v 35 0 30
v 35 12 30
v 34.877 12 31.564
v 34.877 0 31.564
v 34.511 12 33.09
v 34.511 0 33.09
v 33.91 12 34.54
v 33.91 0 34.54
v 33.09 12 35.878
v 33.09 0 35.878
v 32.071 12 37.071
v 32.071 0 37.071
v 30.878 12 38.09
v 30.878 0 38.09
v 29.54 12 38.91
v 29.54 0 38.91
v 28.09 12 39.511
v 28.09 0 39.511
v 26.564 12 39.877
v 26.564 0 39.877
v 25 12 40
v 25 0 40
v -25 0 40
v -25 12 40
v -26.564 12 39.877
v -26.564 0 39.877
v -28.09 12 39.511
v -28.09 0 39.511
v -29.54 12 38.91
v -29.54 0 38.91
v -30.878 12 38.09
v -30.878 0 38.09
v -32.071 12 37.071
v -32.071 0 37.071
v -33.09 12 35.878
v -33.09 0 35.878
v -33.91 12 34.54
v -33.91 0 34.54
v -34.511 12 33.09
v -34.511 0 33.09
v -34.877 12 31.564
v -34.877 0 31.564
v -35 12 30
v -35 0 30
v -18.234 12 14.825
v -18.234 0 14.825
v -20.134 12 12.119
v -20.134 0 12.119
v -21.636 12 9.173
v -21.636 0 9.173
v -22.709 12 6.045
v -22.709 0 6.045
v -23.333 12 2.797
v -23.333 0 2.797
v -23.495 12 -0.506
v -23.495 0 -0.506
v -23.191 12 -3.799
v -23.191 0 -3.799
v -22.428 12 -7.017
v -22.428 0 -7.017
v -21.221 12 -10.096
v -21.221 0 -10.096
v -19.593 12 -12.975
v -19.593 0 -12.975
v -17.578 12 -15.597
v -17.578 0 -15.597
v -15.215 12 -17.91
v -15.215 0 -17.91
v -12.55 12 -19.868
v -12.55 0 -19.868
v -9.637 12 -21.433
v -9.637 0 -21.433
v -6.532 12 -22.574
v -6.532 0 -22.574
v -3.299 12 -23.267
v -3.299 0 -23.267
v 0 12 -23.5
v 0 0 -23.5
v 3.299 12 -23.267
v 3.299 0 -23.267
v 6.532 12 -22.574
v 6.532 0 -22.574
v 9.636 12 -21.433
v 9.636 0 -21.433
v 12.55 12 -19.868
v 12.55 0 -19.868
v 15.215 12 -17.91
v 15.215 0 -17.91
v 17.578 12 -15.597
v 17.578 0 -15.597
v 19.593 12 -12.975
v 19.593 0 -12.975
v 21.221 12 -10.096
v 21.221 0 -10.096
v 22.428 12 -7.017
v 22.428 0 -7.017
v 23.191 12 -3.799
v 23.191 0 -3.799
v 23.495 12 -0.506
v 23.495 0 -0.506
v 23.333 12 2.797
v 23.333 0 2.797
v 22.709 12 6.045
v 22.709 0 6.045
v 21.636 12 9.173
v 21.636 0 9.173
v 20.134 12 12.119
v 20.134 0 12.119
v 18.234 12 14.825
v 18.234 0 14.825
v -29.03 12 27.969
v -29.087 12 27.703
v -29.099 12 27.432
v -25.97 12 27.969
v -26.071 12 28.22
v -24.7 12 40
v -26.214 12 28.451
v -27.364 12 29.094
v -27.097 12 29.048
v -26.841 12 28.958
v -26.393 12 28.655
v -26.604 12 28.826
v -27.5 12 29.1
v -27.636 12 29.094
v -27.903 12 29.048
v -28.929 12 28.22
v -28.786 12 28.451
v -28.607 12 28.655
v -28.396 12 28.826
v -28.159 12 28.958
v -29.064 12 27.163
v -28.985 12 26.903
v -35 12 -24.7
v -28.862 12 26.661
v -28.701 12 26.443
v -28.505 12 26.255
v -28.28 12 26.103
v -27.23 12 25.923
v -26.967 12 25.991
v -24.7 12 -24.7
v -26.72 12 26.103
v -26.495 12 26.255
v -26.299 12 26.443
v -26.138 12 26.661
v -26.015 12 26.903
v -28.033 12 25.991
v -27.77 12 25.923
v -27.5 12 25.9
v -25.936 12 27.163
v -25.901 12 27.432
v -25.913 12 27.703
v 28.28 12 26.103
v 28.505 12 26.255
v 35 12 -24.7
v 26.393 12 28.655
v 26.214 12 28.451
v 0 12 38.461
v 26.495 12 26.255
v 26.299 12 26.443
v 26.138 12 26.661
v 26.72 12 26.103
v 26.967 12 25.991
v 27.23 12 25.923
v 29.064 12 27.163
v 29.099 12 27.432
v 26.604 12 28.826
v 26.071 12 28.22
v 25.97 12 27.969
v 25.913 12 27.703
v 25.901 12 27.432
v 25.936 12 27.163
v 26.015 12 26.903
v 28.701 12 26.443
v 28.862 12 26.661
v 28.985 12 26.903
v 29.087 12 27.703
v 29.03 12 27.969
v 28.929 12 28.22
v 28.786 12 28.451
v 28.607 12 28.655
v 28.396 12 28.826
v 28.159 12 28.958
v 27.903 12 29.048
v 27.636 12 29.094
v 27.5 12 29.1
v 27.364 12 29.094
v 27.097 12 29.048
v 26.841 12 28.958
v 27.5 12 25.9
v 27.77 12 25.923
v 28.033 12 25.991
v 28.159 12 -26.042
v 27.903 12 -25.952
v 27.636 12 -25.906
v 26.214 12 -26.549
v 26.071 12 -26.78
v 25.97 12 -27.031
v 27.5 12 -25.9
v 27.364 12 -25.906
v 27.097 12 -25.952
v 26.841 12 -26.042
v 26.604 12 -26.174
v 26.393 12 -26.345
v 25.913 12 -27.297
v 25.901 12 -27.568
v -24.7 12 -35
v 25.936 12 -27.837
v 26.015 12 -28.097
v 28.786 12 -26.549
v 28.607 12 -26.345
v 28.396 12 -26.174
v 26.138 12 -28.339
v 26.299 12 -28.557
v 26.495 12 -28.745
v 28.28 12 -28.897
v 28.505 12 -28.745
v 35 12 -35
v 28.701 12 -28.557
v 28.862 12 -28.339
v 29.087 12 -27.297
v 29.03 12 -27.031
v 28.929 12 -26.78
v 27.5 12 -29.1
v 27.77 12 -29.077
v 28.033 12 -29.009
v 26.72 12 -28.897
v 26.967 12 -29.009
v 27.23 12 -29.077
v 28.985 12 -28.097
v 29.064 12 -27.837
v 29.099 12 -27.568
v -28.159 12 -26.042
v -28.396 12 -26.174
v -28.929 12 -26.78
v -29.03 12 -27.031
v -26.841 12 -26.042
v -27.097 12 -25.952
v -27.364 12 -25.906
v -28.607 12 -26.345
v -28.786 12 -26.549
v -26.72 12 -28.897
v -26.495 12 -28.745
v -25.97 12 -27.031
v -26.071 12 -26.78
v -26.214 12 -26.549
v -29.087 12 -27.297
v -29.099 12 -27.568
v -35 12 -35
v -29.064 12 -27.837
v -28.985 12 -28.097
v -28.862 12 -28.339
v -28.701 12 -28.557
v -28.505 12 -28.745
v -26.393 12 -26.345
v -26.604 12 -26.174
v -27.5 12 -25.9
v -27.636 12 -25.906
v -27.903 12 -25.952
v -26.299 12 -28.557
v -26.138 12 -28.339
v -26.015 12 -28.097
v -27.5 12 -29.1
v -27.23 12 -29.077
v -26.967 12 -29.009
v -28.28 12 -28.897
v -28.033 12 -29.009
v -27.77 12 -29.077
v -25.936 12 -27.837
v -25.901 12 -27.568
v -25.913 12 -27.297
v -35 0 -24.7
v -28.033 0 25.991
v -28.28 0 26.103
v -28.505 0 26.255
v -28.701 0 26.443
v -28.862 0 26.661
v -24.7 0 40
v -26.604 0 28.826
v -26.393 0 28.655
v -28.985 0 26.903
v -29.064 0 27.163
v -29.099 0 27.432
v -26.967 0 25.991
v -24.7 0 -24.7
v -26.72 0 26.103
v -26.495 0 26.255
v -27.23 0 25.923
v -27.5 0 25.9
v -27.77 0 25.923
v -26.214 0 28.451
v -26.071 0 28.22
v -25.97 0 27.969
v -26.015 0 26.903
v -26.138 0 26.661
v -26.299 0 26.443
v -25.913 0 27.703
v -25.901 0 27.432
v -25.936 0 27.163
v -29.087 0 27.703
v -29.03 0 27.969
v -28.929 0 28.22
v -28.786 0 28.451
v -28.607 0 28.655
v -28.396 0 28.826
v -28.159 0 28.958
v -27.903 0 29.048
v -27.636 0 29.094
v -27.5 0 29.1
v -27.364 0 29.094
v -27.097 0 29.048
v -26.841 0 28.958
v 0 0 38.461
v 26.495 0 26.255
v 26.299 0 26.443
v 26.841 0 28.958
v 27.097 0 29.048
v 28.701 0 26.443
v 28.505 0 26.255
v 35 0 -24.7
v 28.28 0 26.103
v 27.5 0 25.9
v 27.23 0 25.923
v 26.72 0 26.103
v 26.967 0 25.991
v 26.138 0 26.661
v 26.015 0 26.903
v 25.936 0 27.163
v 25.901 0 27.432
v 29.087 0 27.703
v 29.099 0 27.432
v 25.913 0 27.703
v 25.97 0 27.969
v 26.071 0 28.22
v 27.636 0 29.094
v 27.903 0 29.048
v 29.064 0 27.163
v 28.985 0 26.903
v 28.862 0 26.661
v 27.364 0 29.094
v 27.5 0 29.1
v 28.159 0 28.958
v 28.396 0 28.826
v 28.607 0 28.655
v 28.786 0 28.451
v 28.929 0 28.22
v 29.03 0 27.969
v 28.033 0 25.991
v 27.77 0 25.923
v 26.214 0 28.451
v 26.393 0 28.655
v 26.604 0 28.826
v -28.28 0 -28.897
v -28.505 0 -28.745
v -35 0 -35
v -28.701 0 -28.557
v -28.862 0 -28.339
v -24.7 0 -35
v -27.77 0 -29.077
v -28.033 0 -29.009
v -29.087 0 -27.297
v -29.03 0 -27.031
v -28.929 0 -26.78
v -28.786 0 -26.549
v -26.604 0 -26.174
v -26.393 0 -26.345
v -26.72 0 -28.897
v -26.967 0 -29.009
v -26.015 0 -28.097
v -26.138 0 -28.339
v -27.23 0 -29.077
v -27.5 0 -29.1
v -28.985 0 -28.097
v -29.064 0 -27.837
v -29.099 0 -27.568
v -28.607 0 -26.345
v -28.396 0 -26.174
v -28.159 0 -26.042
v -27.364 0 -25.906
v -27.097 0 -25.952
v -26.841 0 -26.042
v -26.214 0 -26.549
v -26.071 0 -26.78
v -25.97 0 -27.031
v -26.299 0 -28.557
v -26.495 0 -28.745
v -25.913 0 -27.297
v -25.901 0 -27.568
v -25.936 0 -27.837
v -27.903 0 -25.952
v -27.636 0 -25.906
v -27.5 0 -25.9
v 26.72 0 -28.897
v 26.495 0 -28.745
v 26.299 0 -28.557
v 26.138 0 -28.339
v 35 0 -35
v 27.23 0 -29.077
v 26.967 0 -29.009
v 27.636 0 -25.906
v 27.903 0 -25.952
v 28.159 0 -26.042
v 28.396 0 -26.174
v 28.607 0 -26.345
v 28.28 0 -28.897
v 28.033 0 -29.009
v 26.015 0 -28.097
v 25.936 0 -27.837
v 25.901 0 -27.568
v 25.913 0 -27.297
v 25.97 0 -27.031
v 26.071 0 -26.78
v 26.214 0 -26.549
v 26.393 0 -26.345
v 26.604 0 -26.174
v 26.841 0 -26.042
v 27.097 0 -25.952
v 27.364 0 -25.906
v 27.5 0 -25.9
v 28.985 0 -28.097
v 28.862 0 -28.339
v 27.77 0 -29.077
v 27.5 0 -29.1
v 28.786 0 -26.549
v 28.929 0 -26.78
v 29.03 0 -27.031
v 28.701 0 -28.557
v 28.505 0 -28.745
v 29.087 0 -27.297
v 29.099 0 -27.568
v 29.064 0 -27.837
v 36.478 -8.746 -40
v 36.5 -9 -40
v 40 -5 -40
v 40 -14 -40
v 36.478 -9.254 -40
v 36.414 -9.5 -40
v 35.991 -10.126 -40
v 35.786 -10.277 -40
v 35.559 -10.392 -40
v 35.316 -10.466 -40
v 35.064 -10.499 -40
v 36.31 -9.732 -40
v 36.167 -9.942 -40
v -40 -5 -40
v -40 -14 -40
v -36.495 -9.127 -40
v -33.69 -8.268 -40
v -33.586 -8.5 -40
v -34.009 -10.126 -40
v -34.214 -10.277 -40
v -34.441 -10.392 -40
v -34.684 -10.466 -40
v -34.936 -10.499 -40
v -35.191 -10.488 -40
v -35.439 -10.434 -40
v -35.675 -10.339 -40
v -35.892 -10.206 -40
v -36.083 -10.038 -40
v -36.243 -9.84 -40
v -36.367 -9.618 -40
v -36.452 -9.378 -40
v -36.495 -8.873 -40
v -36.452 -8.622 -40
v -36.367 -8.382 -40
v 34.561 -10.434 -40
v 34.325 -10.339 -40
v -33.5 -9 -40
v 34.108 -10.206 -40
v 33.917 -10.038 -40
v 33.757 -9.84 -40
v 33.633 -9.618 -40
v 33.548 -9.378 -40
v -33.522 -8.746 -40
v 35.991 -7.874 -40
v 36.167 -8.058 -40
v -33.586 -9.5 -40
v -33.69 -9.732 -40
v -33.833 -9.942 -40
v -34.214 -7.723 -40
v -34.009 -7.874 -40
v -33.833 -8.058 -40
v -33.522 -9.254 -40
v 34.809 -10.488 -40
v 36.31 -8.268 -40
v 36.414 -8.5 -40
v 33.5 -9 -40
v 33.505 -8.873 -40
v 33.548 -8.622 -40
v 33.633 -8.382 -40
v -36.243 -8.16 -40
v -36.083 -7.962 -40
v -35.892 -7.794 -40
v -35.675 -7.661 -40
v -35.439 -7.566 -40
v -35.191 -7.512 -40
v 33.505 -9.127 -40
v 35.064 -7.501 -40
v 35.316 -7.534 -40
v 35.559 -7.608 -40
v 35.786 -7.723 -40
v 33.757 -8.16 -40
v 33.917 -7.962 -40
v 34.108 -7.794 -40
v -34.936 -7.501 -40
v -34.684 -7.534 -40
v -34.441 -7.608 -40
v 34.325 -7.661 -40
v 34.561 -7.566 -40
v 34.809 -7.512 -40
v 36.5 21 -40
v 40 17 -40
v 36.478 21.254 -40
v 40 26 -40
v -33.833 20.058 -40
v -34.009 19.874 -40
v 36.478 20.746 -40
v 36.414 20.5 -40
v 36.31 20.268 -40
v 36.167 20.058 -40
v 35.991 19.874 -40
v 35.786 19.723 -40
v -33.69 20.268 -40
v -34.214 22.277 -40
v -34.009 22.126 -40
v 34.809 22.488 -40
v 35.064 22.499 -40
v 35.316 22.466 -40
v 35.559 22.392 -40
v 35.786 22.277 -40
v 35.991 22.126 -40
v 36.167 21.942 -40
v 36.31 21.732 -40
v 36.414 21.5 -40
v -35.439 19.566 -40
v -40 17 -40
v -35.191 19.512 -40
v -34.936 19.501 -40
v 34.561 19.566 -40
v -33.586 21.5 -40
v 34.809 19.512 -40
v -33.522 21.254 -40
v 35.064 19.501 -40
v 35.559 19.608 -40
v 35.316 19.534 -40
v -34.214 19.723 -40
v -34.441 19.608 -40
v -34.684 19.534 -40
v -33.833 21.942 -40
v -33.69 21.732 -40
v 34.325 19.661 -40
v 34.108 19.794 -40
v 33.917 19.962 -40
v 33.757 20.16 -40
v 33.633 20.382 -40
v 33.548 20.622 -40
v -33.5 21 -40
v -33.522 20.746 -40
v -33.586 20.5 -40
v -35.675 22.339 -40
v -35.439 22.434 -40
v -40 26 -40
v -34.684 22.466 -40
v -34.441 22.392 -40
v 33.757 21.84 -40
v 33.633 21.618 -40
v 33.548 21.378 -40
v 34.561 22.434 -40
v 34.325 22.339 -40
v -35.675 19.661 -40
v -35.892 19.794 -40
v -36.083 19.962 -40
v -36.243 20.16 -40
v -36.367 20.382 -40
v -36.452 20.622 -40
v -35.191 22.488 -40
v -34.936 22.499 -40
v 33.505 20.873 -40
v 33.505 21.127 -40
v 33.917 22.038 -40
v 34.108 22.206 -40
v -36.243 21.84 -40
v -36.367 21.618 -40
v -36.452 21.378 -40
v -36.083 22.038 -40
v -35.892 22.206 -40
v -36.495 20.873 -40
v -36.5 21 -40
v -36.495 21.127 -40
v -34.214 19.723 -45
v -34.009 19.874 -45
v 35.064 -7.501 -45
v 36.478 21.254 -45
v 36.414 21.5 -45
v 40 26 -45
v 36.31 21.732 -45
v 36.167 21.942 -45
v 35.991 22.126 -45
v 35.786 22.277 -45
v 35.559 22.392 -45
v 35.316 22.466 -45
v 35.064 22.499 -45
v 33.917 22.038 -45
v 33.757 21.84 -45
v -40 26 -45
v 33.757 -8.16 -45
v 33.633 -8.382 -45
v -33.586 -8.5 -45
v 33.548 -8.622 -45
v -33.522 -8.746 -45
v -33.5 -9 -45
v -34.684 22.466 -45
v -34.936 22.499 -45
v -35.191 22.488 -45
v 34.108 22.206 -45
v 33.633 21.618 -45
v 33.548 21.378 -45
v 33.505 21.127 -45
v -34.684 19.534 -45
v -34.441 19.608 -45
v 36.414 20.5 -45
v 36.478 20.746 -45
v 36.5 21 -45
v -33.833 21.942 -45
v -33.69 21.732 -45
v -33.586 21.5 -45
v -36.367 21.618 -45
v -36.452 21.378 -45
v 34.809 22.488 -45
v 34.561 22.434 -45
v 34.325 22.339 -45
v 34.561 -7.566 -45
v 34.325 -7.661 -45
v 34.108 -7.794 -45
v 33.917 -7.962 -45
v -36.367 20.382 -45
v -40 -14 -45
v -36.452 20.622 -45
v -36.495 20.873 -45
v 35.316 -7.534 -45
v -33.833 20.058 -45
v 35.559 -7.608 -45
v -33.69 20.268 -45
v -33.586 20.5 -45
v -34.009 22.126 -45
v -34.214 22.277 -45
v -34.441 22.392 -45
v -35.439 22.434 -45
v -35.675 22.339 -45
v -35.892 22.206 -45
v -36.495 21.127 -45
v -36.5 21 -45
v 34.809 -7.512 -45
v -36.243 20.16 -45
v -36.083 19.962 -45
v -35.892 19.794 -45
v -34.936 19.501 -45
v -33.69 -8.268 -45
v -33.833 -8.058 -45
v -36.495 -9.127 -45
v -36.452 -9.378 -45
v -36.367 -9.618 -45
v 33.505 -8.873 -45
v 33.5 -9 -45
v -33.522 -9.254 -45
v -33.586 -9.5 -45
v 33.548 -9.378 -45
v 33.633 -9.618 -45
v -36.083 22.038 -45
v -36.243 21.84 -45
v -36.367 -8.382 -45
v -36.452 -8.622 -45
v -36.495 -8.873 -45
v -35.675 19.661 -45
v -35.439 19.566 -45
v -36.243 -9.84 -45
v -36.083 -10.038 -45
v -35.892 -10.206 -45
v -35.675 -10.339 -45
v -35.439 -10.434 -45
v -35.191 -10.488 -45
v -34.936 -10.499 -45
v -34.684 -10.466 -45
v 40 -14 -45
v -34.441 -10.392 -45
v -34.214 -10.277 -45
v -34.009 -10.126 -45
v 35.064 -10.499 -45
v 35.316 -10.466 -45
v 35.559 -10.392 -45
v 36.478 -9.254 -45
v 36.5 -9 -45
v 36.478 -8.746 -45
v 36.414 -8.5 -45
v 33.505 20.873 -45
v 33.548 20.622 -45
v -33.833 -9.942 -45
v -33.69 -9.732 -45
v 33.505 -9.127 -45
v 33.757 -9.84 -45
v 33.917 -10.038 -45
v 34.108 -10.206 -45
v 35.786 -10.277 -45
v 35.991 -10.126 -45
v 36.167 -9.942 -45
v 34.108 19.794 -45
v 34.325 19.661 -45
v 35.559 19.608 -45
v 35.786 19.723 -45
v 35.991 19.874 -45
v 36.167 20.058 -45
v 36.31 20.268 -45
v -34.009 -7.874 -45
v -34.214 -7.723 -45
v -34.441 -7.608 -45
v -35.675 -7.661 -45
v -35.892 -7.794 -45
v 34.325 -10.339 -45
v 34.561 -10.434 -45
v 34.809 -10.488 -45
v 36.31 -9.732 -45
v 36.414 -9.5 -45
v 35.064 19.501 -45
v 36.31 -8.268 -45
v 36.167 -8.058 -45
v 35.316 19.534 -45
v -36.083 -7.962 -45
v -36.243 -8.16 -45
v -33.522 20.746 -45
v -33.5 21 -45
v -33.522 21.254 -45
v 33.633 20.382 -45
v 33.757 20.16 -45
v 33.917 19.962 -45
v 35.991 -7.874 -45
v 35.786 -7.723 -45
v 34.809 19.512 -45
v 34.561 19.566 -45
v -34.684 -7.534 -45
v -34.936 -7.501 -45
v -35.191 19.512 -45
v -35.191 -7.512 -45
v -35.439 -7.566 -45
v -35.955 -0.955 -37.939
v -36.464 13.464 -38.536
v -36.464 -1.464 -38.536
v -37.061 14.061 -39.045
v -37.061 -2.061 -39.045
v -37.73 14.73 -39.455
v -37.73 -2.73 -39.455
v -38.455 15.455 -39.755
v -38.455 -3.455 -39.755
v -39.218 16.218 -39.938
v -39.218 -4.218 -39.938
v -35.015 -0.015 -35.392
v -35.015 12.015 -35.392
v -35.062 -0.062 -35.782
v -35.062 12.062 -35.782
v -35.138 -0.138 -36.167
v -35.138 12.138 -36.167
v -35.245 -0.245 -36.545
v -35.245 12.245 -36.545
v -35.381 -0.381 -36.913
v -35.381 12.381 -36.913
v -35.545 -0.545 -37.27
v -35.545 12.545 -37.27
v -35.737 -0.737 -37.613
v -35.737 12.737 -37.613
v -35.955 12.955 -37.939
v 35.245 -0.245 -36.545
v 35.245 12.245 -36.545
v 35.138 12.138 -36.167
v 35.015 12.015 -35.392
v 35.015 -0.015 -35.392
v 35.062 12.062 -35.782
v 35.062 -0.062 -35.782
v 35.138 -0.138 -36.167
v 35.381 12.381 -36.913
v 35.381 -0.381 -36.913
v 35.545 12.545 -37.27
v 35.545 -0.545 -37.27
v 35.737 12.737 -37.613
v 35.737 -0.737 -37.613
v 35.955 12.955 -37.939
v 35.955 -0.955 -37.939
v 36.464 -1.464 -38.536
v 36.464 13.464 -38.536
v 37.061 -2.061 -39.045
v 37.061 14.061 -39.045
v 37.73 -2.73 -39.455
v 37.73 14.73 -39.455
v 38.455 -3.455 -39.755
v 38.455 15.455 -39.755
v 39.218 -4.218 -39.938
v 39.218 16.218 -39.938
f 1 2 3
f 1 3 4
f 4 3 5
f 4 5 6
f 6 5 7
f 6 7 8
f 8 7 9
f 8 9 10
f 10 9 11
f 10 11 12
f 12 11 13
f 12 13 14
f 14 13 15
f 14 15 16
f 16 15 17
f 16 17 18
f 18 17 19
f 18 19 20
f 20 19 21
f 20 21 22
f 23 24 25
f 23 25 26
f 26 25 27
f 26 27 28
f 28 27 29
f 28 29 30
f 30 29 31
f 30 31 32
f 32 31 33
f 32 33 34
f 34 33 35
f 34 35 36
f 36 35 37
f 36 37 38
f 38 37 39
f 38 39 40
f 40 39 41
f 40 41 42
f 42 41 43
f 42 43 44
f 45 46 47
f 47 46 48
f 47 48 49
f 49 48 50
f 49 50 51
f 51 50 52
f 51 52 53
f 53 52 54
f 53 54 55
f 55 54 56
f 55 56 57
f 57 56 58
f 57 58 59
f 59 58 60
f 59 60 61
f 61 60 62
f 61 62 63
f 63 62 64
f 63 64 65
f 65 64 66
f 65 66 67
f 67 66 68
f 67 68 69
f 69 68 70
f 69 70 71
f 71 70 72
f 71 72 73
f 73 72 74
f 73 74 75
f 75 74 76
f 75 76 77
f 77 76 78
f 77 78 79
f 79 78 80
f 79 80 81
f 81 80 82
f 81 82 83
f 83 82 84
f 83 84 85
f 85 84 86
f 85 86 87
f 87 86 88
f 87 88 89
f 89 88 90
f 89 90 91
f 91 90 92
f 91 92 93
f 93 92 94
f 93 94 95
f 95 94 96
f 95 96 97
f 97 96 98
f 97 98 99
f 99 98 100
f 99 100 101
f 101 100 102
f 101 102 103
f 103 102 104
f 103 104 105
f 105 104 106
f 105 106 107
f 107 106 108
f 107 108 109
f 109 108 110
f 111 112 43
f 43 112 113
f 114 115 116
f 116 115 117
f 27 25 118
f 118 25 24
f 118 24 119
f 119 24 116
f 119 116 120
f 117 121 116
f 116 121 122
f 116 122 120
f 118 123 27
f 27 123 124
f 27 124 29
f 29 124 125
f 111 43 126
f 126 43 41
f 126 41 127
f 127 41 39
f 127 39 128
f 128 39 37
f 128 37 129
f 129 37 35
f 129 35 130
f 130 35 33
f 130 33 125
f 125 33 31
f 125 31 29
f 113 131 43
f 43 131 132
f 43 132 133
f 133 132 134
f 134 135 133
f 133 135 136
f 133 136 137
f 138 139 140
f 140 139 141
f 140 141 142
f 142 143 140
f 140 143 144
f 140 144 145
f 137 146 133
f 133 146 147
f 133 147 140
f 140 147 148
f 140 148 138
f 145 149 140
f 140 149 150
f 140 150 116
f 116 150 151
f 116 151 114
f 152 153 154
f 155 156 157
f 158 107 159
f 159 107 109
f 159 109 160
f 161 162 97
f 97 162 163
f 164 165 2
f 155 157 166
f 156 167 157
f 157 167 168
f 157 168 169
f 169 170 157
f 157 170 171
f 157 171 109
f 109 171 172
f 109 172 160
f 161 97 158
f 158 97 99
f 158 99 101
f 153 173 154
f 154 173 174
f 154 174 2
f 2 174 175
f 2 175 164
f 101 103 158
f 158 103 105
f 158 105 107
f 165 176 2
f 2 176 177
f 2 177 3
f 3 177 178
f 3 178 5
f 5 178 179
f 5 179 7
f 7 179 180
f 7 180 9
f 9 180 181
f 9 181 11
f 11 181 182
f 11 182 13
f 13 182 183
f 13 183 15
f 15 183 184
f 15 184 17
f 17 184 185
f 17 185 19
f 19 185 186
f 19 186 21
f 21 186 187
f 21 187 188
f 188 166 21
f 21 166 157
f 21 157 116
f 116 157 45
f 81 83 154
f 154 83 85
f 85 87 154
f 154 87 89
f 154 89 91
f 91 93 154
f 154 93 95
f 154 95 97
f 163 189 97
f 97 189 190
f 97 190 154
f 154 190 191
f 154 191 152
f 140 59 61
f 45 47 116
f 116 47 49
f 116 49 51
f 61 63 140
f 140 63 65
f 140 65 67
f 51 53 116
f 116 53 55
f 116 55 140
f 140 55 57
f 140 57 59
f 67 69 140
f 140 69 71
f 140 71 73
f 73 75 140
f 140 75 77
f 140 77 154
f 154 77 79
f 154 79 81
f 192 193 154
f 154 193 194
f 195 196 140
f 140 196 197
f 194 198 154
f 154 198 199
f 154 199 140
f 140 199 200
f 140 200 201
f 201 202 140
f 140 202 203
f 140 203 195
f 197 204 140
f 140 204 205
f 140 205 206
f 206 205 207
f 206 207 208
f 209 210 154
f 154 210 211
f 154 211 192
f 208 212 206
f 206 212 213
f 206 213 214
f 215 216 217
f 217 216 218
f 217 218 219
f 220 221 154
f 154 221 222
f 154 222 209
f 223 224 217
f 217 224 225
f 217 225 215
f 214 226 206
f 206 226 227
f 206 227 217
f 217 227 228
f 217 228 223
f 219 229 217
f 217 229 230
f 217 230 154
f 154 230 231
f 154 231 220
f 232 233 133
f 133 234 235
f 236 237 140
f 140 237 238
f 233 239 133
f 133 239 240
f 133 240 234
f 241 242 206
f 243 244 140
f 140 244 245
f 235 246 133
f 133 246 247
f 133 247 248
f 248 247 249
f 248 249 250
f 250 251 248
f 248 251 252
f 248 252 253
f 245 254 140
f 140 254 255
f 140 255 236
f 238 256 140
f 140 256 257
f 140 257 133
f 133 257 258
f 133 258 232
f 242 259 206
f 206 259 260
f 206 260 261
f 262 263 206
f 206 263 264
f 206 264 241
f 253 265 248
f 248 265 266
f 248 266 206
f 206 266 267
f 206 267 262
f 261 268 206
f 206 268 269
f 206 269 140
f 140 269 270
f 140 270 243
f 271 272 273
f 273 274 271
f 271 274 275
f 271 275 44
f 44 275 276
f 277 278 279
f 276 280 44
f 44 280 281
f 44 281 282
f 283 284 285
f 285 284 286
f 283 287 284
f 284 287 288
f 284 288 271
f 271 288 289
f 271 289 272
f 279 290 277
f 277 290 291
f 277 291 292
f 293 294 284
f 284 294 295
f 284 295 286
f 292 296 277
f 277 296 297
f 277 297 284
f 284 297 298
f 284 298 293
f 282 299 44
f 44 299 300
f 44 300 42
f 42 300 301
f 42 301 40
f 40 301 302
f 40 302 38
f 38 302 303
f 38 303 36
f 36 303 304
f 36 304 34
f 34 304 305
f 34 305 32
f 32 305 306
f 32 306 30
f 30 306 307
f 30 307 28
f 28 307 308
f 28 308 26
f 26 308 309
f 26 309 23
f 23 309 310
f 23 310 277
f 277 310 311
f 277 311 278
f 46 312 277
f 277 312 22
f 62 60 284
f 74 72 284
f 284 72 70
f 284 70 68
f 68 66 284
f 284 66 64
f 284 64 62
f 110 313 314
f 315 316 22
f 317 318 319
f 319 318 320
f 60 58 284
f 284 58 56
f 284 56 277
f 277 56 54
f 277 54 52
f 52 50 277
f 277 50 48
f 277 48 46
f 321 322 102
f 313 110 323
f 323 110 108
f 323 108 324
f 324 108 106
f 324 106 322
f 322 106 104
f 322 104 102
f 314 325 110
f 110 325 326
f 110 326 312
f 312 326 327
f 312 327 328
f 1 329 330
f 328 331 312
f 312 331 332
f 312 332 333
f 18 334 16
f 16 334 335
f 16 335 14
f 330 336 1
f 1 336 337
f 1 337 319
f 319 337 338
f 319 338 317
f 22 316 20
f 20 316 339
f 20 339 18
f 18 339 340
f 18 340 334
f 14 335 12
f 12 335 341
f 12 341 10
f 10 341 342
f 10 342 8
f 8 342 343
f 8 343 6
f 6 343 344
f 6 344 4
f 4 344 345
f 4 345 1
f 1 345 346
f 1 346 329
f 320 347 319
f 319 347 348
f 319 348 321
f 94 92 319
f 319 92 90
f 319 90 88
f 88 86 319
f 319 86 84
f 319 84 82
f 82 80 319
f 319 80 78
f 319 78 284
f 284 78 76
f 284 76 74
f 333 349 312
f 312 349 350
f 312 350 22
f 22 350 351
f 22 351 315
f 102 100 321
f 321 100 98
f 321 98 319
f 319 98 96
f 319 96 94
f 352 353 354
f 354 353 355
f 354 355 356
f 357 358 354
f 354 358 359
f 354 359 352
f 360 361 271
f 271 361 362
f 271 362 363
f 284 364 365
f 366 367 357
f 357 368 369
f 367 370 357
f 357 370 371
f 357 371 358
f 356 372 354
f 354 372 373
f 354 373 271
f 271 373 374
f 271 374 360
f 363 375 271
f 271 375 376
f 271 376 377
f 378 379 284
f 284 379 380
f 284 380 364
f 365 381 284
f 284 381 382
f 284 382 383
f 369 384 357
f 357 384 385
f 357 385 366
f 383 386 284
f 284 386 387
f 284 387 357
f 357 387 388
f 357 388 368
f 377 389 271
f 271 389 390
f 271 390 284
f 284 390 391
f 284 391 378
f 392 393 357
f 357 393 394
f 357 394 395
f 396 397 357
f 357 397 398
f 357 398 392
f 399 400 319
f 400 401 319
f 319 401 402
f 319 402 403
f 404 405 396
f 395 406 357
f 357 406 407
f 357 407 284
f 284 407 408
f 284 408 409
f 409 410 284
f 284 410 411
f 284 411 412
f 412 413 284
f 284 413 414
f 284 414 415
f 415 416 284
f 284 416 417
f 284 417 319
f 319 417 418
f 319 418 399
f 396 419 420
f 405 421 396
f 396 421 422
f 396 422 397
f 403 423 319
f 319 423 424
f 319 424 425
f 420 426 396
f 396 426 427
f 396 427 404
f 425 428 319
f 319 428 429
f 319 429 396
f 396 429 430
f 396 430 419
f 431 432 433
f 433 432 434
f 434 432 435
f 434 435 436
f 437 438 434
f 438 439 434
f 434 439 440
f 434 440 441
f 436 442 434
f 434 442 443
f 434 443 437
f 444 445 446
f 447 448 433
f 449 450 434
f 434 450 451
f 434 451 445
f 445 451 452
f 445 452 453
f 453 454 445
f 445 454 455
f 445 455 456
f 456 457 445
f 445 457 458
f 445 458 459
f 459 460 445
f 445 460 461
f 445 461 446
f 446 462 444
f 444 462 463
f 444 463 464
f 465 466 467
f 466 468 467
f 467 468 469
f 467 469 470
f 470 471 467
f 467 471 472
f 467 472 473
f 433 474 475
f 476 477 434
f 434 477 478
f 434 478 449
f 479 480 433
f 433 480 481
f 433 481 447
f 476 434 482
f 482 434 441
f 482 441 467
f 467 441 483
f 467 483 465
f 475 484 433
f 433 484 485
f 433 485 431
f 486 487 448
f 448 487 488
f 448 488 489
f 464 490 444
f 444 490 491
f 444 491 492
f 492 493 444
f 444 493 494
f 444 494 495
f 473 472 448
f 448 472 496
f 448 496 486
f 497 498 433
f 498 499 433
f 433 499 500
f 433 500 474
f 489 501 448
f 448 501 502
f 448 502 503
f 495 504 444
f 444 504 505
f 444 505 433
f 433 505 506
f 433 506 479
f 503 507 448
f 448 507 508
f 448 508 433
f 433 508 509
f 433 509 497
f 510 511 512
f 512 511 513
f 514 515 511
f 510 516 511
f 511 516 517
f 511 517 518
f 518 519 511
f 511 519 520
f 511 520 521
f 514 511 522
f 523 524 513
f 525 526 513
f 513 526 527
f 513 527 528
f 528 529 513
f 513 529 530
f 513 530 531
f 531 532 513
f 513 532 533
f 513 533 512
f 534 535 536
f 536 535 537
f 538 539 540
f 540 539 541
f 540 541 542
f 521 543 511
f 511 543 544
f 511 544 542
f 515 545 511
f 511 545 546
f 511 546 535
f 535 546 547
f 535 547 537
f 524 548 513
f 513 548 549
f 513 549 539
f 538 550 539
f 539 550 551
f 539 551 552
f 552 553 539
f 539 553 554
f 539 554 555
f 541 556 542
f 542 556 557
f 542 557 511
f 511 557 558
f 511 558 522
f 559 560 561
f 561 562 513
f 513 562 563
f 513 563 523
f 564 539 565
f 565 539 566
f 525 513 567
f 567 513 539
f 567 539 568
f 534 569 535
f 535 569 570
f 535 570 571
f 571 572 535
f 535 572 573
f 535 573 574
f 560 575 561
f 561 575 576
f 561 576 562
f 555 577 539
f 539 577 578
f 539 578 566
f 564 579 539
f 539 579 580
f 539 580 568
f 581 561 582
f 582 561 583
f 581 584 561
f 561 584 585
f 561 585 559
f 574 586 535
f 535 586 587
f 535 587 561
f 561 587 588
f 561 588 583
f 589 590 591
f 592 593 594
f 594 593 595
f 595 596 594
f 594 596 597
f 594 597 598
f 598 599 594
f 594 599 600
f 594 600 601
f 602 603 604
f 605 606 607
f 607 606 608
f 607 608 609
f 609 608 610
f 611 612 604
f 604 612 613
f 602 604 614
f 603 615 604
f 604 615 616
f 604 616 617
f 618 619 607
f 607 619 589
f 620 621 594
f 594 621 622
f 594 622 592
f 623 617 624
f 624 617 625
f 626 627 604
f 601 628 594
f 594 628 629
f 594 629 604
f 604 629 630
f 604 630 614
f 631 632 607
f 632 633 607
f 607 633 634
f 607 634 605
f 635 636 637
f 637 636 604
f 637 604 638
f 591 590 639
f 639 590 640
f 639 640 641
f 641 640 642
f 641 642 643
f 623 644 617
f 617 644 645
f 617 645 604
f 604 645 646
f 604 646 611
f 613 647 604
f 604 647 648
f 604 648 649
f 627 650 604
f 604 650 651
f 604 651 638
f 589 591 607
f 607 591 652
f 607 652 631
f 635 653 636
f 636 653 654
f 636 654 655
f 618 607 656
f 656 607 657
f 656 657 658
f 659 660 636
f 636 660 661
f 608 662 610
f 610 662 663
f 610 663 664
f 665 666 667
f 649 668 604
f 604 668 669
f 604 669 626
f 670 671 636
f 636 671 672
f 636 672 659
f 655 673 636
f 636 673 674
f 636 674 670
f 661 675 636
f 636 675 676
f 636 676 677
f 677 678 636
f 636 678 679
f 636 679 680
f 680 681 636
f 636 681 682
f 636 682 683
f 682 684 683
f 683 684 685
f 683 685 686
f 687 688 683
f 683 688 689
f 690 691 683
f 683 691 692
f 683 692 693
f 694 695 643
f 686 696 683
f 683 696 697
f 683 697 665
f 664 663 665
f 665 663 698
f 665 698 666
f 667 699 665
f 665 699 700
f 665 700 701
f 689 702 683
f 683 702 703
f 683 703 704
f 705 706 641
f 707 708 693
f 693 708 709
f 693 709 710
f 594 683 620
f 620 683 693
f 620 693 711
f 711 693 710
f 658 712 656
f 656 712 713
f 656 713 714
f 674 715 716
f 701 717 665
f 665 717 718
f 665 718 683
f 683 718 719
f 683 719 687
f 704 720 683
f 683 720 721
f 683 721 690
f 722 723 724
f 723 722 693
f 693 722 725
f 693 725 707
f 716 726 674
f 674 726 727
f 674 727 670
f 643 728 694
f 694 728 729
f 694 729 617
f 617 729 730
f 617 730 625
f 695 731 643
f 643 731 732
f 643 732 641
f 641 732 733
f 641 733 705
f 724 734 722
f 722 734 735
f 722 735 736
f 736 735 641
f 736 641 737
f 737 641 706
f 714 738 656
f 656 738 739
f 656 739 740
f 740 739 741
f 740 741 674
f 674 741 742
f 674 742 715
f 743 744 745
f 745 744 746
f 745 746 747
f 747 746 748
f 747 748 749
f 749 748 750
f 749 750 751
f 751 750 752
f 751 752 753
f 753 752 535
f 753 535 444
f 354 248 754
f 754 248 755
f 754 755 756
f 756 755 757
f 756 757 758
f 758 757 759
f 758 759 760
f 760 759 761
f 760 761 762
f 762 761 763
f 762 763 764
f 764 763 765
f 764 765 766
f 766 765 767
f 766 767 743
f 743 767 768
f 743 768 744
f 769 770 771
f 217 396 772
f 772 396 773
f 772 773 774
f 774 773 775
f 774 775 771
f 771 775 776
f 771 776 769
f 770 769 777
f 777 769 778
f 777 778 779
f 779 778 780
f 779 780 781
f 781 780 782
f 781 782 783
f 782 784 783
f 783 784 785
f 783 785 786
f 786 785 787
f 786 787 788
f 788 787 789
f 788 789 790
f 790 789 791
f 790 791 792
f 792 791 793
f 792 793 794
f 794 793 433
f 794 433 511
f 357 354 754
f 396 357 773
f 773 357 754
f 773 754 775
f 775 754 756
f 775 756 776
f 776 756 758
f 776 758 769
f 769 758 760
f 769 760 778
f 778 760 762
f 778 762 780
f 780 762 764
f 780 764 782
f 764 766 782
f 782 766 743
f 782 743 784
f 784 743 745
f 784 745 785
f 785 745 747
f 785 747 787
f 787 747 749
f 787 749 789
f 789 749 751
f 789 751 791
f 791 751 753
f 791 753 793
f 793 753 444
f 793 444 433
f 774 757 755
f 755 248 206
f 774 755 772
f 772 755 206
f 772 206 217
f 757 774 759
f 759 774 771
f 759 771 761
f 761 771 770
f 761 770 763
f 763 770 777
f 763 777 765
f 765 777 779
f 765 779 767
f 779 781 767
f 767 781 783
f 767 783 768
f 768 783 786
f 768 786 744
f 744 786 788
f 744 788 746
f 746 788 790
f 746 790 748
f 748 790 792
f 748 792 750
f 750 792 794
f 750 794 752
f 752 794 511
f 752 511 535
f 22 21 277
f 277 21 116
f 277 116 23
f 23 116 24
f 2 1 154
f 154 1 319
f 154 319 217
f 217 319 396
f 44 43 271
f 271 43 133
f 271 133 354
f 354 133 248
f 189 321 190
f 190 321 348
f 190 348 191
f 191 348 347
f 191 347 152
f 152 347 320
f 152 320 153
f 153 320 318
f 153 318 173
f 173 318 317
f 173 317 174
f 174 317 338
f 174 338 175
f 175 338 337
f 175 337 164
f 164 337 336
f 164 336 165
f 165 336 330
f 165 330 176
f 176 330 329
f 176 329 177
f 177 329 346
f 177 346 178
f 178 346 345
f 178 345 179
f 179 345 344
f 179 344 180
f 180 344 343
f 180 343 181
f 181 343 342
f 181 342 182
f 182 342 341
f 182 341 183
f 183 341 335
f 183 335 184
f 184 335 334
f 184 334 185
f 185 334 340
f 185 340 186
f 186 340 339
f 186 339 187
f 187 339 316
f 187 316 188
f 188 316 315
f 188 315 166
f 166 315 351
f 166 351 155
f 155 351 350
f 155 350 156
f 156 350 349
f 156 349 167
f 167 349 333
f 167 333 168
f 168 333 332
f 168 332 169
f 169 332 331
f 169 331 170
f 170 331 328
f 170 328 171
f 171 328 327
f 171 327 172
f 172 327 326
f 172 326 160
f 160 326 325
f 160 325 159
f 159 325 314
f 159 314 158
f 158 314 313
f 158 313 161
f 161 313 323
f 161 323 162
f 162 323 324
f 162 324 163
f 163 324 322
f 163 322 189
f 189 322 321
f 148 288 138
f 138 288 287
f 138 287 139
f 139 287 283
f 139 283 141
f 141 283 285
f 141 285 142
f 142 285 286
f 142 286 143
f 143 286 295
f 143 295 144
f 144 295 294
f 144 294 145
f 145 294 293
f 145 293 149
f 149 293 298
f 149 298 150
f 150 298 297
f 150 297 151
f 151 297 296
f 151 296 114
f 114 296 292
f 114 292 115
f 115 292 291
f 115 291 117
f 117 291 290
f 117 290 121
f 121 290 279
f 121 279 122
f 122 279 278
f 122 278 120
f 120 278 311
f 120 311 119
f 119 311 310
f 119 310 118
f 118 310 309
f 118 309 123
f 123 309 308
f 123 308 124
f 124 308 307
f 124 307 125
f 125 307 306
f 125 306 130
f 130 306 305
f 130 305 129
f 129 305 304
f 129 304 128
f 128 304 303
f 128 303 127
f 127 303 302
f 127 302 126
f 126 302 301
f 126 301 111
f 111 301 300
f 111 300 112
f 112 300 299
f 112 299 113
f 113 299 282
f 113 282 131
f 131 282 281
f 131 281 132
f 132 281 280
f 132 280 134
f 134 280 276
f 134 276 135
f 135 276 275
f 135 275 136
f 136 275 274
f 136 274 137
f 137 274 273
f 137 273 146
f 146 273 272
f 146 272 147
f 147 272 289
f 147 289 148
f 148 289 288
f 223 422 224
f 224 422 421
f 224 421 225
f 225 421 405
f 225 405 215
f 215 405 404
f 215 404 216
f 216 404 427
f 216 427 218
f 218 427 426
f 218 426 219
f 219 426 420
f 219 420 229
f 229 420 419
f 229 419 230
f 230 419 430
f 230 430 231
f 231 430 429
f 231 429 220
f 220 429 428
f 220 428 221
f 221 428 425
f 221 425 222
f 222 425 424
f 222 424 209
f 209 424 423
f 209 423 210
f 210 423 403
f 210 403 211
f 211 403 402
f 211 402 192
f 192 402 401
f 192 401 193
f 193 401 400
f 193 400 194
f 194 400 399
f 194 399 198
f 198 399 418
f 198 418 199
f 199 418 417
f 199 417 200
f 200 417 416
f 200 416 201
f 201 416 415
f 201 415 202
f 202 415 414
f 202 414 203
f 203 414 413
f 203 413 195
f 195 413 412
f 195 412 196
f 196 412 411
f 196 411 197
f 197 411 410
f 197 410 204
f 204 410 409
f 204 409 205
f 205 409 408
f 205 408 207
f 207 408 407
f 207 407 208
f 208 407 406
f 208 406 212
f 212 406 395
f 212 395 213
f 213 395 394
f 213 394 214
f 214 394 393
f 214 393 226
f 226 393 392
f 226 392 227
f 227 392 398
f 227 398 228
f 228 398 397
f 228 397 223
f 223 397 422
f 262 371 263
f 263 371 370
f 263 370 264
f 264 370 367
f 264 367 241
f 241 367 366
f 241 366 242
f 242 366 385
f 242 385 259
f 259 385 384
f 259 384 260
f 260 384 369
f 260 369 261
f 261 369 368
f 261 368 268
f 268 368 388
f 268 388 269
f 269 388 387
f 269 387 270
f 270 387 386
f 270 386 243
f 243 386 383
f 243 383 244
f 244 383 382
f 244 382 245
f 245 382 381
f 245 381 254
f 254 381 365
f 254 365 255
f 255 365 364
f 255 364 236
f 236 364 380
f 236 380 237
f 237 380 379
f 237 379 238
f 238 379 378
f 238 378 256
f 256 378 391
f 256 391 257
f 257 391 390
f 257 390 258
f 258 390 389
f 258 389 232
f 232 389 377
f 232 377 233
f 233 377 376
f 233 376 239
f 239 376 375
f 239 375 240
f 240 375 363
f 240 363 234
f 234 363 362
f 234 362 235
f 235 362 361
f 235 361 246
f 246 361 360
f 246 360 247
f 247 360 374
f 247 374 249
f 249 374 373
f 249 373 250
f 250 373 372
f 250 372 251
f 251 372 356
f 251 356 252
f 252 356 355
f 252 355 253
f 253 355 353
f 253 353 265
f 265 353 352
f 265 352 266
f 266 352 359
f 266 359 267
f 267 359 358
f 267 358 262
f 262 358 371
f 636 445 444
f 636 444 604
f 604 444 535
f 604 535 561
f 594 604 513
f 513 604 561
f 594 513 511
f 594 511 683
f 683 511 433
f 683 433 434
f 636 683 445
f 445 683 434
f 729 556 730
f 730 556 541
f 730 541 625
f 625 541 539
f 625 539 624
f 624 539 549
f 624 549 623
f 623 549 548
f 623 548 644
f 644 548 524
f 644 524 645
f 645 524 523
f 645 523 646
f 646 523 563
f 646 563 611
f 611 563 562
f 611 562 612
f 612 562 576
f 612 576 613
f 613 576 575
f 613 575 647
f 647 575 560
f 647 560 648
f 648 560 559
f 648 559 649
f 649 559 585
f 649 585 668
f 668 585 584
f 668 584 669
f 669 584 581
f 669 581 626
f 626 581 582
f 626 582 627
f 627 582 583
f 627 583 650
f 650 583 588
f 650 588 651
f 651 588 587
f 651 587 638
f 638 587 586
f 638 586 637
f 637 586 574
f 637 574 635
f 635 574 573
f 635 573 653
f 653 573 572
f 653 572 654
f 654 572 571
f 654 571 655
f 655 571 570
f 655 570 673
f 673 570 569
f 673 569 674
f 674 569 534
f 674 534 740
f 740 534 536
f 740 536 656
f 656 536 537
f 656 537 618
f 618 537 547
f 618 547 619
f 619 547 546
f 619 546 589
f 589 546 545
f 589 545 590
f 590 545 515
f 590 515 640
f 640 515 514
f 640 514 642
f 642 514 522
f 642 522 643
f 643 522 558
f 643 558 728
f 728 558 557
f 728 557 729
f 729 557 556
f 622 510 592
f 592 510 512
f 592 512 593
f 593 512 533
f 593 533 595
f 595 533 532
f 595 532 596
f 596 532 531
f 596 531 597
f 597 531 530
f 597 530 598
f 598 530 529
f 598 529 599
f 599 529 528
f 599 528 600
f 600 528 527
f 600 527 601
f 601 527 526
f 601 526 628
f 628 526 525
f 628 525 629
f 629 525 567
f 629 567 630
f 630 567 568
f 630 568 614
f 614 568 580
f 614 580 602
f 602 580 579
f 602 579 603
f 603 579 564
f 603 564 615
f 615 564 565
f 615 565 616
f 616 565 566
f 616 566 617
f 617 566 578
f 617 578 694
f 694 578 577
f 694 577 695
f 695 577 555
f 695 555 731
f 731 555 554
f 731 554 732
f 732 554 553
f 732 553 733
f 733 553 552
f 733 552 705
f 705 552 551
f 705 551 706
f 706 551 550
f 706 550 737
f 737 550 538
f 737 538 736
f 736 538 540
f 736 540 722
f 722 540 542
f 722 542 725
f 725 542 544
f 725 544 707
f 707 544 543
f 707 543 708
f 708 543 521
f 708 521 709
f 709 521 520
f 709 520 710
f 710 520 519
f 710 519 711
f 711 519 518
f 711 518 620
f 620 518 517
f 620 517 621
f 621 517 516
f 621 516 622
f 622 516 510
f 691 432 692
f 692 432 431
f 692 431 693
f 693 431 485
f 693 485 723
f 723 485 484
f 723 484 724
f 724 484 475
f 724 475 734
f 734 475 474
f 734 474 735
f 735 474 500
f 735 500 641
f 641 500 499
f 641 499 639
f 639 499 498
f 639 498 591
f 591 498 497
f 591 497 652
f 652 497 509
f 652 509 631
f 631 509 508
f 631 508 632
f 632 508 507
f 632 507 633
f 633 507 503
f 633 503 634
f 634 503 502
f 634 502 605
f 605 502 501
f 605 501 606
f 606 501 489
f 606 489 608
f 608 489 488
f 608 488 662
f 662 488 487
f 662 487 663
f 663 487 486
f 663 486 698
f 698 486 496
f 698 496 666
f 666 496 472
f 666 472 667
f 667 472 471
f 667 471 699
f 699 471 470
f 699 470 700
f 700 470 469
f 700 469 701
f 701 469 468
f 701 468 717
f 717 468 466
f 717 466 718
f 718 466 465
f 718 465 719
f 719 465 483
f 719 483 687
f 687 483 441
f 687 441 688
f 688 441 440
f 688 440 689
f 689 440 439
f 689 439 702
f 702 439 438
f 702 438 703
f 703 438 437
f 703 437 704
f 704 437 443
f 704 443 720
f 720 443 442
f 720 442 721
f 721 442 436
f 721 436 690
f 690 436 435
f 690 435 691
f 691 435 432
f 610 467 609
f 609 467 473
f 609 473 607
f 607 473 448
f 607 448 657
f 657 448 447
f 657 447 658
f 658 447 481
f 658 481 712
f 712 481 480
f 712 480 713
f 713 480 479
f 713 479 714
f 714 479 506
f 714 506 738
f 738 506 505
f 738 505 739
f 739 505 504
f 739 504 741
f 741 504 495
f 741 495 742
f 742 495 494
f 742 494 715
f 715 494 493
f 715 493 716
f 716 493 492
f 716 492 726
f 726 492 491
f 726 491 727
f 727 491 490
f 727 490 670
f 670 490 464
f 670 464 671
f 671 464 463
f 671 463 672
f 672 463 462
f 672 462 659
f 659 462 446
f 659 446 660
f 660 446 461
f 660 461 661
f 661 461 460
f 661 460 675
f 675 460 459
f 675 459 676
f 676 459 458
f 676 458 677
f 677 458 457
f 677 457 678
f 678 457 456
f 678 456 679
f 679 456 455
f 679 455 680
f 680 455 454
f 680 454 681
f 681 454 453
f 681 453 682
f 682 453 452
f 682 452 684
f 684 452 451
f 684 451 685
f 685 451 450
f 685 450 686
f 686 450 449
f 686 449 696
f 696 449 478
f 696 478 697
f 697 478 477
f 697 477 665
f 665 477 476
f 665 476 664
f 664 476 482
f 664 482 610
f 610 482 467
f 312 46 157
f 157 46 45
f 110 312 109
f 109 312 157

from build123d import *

# Parameters (mm, degrees)
SKETCH_2_W          = 70
SKETCH_2_H          = 80
SKETCH_2_R          = 23.5
SKETCH_2_R_2        = 1.6
EXTRUDE_4_DEPTH     = 12
SKETCH_6_W          = 80
SKETCH_6_H          = 40
EXTRUDE_6_DEPTH     = 5
FILLET_3_R          = 5
FILLET_4_R          = 5
FILLET_5_R          = 5
FILLET_6_R          = 5
SKETCH_7_R          = 1.5
CUT_EXTRUDE_4_DEPTH = 5
CUT_EXTRUDE_START   = -12
CUT_EXTRUDE_6_DEPTH = 12
FILLET_7_R          = 10
FILLET_8_R          = 10


with BuildPart() as part:
    # 草图2 → 凸台-拉伸4 (new body)
    with BuildSketch(Plane(origin=(0, 0, 0), x_dir=(1, 0, 0), z_dir=(0, 1, 0))):
        Rectangle(SKETCH_2_W, SKETCH_2_H)
        with Locations(Location((0, 0, 0), (0, 0, 270))):
            Circle(SKETCH_2_R, mode=Mode.SUBTRACT)
        with Locations(Location((-27.5, 27.5, 0), (0, 0, 270))):
            Circle(SKETCH_2_R_2, mode=Mode.SUBTRACT)
        with Locations(Location((27.5, 27.5, 0), (0, 0, 270))):
            Circle(SKETCH_2_R_2, mode=Mode.SUBTRACT)
        with Locations(Location((27.5, -27.5, 0), (0, 0, 270))):
            Circle(SKETCH_2_R_2, mode=Mode.SUBTRACT)
        with Locations(Location((-27.5, -27.5, 0), (0, 0, 270))):
            Circle(SKETCH_2_R_2, mode=Mode.SUBTRACT)
    extrude(amount=EXTRUDE_4_DEPTH)

    # 草图6 → 凸台-拉伸6 (add)
    with BuildSketch(Plane(origin=(0, 0, -40), x_dir=(-1, 0, 0), z_dir=(0, 0, -1))):
        with Locations((0, 6)):
            Rectangle(SKETCH_6_W, SKETCH_6_H)
    extrude(amount=EXTRUDE_6_DEPTH)

    # 圆角3
    fillet_3_edges = [part.edges().sort_by_distance(p)[0] for p in [
        (0, 12, -40),
    ]]
    fillet(fillet_3_edges, radius=FILLET_3_R)

    # 圆角4
    fillet_4_edges = [part.edges().sort_by_distance(p)[0] for p in [
        (0, 0, -40),
    ]]
    fillet(fillet_4_edges, radius=FILLET_4_R)

    # 圆角5
    fillet_5_edges = [part.edges().sort_by_distance(p)[0] for p in [
        (35, 6, -40),
    ]]
    fillet(fillet_5_edges, radius=FILLET_5_R - 0.0001)  # a hair under: the kernel refuses the full size

    # 圆角6
    fillet_6_edges = [part.edges().sort_by_distance(p)[0] for p in [
        (-35, 6, -40),
    ]]
    fillet(fillet_6_edges, radius=FILLET_6_R - 0.0001)  # a hair under: the kernel refuses the full size

    # 草图7 → 切除-拉伸4 (cut)
    with BuildSketch(Plane.XY.offset(-40)):
        with Locations((-35, -9)):
            Circle(SKETCH_7_R)
        with Locations(Location((-35, 21, 0), (0, 0, 180))):
            Circle(SKETCH_7_R)
        with Locations(Location((35, -9, 0), (0, 0, 180))):
            Circle(SKETCH_7_R)
        with Locations((35, 21)):
            Circle(SKETCH_7_R)
    extrude(amount=-CUT_EXTRUDE_4_DEPTH, mode=Mode.SUBTRACT)

    # 草图8 → 切除-拉伸6 (cut)
    with BuildSketch(Plane(origin=(0, 12, 0), x_dir=(1, 0, 0), z_dir=(0, 1, 0)).offset(CUT_EXTRUDE_START)):
        with BuildLine():
            Line((0, -38.461215902), (0, -23.5))
            ThreePointArc((0, -23.5), (-10.095935407, -21.220793771), (-18.233511761, -14.825284107))
            Line((-18.233511761, -14.825284107), (0, -38.461215902))
        make_face()
        with BuildLine():
            ThreePointArc((18.233511761, -14.825284107), (10.095935407, -21.220793771), (0, -23.5))
            Line((0, -23.5), (0, -38.461215902))
            Line((0, -38.461215902), (18.233511761, -14.825284107))
        make_face()
    extrude(amount=CUT_EXTRUDE_6_DEPTH, mode=Mode.SUBTRACT)

    # 圆角7
    fillet_7_edges = [part.edges().sort_by_distance(p)[0] for p in [
        (-35, 6, 40),
    ]]
    fillet(fillet_7_edges, radius=FILLET_7_R)

    # 圆角8
    fillet_8_edges = [part.edges().sort_by_distance(p)[0] for p in [
        (35, 6, 40),
    ]]
    fillet(fillet_8_edges, radius=FILLET_8_R)


solid = part.part
